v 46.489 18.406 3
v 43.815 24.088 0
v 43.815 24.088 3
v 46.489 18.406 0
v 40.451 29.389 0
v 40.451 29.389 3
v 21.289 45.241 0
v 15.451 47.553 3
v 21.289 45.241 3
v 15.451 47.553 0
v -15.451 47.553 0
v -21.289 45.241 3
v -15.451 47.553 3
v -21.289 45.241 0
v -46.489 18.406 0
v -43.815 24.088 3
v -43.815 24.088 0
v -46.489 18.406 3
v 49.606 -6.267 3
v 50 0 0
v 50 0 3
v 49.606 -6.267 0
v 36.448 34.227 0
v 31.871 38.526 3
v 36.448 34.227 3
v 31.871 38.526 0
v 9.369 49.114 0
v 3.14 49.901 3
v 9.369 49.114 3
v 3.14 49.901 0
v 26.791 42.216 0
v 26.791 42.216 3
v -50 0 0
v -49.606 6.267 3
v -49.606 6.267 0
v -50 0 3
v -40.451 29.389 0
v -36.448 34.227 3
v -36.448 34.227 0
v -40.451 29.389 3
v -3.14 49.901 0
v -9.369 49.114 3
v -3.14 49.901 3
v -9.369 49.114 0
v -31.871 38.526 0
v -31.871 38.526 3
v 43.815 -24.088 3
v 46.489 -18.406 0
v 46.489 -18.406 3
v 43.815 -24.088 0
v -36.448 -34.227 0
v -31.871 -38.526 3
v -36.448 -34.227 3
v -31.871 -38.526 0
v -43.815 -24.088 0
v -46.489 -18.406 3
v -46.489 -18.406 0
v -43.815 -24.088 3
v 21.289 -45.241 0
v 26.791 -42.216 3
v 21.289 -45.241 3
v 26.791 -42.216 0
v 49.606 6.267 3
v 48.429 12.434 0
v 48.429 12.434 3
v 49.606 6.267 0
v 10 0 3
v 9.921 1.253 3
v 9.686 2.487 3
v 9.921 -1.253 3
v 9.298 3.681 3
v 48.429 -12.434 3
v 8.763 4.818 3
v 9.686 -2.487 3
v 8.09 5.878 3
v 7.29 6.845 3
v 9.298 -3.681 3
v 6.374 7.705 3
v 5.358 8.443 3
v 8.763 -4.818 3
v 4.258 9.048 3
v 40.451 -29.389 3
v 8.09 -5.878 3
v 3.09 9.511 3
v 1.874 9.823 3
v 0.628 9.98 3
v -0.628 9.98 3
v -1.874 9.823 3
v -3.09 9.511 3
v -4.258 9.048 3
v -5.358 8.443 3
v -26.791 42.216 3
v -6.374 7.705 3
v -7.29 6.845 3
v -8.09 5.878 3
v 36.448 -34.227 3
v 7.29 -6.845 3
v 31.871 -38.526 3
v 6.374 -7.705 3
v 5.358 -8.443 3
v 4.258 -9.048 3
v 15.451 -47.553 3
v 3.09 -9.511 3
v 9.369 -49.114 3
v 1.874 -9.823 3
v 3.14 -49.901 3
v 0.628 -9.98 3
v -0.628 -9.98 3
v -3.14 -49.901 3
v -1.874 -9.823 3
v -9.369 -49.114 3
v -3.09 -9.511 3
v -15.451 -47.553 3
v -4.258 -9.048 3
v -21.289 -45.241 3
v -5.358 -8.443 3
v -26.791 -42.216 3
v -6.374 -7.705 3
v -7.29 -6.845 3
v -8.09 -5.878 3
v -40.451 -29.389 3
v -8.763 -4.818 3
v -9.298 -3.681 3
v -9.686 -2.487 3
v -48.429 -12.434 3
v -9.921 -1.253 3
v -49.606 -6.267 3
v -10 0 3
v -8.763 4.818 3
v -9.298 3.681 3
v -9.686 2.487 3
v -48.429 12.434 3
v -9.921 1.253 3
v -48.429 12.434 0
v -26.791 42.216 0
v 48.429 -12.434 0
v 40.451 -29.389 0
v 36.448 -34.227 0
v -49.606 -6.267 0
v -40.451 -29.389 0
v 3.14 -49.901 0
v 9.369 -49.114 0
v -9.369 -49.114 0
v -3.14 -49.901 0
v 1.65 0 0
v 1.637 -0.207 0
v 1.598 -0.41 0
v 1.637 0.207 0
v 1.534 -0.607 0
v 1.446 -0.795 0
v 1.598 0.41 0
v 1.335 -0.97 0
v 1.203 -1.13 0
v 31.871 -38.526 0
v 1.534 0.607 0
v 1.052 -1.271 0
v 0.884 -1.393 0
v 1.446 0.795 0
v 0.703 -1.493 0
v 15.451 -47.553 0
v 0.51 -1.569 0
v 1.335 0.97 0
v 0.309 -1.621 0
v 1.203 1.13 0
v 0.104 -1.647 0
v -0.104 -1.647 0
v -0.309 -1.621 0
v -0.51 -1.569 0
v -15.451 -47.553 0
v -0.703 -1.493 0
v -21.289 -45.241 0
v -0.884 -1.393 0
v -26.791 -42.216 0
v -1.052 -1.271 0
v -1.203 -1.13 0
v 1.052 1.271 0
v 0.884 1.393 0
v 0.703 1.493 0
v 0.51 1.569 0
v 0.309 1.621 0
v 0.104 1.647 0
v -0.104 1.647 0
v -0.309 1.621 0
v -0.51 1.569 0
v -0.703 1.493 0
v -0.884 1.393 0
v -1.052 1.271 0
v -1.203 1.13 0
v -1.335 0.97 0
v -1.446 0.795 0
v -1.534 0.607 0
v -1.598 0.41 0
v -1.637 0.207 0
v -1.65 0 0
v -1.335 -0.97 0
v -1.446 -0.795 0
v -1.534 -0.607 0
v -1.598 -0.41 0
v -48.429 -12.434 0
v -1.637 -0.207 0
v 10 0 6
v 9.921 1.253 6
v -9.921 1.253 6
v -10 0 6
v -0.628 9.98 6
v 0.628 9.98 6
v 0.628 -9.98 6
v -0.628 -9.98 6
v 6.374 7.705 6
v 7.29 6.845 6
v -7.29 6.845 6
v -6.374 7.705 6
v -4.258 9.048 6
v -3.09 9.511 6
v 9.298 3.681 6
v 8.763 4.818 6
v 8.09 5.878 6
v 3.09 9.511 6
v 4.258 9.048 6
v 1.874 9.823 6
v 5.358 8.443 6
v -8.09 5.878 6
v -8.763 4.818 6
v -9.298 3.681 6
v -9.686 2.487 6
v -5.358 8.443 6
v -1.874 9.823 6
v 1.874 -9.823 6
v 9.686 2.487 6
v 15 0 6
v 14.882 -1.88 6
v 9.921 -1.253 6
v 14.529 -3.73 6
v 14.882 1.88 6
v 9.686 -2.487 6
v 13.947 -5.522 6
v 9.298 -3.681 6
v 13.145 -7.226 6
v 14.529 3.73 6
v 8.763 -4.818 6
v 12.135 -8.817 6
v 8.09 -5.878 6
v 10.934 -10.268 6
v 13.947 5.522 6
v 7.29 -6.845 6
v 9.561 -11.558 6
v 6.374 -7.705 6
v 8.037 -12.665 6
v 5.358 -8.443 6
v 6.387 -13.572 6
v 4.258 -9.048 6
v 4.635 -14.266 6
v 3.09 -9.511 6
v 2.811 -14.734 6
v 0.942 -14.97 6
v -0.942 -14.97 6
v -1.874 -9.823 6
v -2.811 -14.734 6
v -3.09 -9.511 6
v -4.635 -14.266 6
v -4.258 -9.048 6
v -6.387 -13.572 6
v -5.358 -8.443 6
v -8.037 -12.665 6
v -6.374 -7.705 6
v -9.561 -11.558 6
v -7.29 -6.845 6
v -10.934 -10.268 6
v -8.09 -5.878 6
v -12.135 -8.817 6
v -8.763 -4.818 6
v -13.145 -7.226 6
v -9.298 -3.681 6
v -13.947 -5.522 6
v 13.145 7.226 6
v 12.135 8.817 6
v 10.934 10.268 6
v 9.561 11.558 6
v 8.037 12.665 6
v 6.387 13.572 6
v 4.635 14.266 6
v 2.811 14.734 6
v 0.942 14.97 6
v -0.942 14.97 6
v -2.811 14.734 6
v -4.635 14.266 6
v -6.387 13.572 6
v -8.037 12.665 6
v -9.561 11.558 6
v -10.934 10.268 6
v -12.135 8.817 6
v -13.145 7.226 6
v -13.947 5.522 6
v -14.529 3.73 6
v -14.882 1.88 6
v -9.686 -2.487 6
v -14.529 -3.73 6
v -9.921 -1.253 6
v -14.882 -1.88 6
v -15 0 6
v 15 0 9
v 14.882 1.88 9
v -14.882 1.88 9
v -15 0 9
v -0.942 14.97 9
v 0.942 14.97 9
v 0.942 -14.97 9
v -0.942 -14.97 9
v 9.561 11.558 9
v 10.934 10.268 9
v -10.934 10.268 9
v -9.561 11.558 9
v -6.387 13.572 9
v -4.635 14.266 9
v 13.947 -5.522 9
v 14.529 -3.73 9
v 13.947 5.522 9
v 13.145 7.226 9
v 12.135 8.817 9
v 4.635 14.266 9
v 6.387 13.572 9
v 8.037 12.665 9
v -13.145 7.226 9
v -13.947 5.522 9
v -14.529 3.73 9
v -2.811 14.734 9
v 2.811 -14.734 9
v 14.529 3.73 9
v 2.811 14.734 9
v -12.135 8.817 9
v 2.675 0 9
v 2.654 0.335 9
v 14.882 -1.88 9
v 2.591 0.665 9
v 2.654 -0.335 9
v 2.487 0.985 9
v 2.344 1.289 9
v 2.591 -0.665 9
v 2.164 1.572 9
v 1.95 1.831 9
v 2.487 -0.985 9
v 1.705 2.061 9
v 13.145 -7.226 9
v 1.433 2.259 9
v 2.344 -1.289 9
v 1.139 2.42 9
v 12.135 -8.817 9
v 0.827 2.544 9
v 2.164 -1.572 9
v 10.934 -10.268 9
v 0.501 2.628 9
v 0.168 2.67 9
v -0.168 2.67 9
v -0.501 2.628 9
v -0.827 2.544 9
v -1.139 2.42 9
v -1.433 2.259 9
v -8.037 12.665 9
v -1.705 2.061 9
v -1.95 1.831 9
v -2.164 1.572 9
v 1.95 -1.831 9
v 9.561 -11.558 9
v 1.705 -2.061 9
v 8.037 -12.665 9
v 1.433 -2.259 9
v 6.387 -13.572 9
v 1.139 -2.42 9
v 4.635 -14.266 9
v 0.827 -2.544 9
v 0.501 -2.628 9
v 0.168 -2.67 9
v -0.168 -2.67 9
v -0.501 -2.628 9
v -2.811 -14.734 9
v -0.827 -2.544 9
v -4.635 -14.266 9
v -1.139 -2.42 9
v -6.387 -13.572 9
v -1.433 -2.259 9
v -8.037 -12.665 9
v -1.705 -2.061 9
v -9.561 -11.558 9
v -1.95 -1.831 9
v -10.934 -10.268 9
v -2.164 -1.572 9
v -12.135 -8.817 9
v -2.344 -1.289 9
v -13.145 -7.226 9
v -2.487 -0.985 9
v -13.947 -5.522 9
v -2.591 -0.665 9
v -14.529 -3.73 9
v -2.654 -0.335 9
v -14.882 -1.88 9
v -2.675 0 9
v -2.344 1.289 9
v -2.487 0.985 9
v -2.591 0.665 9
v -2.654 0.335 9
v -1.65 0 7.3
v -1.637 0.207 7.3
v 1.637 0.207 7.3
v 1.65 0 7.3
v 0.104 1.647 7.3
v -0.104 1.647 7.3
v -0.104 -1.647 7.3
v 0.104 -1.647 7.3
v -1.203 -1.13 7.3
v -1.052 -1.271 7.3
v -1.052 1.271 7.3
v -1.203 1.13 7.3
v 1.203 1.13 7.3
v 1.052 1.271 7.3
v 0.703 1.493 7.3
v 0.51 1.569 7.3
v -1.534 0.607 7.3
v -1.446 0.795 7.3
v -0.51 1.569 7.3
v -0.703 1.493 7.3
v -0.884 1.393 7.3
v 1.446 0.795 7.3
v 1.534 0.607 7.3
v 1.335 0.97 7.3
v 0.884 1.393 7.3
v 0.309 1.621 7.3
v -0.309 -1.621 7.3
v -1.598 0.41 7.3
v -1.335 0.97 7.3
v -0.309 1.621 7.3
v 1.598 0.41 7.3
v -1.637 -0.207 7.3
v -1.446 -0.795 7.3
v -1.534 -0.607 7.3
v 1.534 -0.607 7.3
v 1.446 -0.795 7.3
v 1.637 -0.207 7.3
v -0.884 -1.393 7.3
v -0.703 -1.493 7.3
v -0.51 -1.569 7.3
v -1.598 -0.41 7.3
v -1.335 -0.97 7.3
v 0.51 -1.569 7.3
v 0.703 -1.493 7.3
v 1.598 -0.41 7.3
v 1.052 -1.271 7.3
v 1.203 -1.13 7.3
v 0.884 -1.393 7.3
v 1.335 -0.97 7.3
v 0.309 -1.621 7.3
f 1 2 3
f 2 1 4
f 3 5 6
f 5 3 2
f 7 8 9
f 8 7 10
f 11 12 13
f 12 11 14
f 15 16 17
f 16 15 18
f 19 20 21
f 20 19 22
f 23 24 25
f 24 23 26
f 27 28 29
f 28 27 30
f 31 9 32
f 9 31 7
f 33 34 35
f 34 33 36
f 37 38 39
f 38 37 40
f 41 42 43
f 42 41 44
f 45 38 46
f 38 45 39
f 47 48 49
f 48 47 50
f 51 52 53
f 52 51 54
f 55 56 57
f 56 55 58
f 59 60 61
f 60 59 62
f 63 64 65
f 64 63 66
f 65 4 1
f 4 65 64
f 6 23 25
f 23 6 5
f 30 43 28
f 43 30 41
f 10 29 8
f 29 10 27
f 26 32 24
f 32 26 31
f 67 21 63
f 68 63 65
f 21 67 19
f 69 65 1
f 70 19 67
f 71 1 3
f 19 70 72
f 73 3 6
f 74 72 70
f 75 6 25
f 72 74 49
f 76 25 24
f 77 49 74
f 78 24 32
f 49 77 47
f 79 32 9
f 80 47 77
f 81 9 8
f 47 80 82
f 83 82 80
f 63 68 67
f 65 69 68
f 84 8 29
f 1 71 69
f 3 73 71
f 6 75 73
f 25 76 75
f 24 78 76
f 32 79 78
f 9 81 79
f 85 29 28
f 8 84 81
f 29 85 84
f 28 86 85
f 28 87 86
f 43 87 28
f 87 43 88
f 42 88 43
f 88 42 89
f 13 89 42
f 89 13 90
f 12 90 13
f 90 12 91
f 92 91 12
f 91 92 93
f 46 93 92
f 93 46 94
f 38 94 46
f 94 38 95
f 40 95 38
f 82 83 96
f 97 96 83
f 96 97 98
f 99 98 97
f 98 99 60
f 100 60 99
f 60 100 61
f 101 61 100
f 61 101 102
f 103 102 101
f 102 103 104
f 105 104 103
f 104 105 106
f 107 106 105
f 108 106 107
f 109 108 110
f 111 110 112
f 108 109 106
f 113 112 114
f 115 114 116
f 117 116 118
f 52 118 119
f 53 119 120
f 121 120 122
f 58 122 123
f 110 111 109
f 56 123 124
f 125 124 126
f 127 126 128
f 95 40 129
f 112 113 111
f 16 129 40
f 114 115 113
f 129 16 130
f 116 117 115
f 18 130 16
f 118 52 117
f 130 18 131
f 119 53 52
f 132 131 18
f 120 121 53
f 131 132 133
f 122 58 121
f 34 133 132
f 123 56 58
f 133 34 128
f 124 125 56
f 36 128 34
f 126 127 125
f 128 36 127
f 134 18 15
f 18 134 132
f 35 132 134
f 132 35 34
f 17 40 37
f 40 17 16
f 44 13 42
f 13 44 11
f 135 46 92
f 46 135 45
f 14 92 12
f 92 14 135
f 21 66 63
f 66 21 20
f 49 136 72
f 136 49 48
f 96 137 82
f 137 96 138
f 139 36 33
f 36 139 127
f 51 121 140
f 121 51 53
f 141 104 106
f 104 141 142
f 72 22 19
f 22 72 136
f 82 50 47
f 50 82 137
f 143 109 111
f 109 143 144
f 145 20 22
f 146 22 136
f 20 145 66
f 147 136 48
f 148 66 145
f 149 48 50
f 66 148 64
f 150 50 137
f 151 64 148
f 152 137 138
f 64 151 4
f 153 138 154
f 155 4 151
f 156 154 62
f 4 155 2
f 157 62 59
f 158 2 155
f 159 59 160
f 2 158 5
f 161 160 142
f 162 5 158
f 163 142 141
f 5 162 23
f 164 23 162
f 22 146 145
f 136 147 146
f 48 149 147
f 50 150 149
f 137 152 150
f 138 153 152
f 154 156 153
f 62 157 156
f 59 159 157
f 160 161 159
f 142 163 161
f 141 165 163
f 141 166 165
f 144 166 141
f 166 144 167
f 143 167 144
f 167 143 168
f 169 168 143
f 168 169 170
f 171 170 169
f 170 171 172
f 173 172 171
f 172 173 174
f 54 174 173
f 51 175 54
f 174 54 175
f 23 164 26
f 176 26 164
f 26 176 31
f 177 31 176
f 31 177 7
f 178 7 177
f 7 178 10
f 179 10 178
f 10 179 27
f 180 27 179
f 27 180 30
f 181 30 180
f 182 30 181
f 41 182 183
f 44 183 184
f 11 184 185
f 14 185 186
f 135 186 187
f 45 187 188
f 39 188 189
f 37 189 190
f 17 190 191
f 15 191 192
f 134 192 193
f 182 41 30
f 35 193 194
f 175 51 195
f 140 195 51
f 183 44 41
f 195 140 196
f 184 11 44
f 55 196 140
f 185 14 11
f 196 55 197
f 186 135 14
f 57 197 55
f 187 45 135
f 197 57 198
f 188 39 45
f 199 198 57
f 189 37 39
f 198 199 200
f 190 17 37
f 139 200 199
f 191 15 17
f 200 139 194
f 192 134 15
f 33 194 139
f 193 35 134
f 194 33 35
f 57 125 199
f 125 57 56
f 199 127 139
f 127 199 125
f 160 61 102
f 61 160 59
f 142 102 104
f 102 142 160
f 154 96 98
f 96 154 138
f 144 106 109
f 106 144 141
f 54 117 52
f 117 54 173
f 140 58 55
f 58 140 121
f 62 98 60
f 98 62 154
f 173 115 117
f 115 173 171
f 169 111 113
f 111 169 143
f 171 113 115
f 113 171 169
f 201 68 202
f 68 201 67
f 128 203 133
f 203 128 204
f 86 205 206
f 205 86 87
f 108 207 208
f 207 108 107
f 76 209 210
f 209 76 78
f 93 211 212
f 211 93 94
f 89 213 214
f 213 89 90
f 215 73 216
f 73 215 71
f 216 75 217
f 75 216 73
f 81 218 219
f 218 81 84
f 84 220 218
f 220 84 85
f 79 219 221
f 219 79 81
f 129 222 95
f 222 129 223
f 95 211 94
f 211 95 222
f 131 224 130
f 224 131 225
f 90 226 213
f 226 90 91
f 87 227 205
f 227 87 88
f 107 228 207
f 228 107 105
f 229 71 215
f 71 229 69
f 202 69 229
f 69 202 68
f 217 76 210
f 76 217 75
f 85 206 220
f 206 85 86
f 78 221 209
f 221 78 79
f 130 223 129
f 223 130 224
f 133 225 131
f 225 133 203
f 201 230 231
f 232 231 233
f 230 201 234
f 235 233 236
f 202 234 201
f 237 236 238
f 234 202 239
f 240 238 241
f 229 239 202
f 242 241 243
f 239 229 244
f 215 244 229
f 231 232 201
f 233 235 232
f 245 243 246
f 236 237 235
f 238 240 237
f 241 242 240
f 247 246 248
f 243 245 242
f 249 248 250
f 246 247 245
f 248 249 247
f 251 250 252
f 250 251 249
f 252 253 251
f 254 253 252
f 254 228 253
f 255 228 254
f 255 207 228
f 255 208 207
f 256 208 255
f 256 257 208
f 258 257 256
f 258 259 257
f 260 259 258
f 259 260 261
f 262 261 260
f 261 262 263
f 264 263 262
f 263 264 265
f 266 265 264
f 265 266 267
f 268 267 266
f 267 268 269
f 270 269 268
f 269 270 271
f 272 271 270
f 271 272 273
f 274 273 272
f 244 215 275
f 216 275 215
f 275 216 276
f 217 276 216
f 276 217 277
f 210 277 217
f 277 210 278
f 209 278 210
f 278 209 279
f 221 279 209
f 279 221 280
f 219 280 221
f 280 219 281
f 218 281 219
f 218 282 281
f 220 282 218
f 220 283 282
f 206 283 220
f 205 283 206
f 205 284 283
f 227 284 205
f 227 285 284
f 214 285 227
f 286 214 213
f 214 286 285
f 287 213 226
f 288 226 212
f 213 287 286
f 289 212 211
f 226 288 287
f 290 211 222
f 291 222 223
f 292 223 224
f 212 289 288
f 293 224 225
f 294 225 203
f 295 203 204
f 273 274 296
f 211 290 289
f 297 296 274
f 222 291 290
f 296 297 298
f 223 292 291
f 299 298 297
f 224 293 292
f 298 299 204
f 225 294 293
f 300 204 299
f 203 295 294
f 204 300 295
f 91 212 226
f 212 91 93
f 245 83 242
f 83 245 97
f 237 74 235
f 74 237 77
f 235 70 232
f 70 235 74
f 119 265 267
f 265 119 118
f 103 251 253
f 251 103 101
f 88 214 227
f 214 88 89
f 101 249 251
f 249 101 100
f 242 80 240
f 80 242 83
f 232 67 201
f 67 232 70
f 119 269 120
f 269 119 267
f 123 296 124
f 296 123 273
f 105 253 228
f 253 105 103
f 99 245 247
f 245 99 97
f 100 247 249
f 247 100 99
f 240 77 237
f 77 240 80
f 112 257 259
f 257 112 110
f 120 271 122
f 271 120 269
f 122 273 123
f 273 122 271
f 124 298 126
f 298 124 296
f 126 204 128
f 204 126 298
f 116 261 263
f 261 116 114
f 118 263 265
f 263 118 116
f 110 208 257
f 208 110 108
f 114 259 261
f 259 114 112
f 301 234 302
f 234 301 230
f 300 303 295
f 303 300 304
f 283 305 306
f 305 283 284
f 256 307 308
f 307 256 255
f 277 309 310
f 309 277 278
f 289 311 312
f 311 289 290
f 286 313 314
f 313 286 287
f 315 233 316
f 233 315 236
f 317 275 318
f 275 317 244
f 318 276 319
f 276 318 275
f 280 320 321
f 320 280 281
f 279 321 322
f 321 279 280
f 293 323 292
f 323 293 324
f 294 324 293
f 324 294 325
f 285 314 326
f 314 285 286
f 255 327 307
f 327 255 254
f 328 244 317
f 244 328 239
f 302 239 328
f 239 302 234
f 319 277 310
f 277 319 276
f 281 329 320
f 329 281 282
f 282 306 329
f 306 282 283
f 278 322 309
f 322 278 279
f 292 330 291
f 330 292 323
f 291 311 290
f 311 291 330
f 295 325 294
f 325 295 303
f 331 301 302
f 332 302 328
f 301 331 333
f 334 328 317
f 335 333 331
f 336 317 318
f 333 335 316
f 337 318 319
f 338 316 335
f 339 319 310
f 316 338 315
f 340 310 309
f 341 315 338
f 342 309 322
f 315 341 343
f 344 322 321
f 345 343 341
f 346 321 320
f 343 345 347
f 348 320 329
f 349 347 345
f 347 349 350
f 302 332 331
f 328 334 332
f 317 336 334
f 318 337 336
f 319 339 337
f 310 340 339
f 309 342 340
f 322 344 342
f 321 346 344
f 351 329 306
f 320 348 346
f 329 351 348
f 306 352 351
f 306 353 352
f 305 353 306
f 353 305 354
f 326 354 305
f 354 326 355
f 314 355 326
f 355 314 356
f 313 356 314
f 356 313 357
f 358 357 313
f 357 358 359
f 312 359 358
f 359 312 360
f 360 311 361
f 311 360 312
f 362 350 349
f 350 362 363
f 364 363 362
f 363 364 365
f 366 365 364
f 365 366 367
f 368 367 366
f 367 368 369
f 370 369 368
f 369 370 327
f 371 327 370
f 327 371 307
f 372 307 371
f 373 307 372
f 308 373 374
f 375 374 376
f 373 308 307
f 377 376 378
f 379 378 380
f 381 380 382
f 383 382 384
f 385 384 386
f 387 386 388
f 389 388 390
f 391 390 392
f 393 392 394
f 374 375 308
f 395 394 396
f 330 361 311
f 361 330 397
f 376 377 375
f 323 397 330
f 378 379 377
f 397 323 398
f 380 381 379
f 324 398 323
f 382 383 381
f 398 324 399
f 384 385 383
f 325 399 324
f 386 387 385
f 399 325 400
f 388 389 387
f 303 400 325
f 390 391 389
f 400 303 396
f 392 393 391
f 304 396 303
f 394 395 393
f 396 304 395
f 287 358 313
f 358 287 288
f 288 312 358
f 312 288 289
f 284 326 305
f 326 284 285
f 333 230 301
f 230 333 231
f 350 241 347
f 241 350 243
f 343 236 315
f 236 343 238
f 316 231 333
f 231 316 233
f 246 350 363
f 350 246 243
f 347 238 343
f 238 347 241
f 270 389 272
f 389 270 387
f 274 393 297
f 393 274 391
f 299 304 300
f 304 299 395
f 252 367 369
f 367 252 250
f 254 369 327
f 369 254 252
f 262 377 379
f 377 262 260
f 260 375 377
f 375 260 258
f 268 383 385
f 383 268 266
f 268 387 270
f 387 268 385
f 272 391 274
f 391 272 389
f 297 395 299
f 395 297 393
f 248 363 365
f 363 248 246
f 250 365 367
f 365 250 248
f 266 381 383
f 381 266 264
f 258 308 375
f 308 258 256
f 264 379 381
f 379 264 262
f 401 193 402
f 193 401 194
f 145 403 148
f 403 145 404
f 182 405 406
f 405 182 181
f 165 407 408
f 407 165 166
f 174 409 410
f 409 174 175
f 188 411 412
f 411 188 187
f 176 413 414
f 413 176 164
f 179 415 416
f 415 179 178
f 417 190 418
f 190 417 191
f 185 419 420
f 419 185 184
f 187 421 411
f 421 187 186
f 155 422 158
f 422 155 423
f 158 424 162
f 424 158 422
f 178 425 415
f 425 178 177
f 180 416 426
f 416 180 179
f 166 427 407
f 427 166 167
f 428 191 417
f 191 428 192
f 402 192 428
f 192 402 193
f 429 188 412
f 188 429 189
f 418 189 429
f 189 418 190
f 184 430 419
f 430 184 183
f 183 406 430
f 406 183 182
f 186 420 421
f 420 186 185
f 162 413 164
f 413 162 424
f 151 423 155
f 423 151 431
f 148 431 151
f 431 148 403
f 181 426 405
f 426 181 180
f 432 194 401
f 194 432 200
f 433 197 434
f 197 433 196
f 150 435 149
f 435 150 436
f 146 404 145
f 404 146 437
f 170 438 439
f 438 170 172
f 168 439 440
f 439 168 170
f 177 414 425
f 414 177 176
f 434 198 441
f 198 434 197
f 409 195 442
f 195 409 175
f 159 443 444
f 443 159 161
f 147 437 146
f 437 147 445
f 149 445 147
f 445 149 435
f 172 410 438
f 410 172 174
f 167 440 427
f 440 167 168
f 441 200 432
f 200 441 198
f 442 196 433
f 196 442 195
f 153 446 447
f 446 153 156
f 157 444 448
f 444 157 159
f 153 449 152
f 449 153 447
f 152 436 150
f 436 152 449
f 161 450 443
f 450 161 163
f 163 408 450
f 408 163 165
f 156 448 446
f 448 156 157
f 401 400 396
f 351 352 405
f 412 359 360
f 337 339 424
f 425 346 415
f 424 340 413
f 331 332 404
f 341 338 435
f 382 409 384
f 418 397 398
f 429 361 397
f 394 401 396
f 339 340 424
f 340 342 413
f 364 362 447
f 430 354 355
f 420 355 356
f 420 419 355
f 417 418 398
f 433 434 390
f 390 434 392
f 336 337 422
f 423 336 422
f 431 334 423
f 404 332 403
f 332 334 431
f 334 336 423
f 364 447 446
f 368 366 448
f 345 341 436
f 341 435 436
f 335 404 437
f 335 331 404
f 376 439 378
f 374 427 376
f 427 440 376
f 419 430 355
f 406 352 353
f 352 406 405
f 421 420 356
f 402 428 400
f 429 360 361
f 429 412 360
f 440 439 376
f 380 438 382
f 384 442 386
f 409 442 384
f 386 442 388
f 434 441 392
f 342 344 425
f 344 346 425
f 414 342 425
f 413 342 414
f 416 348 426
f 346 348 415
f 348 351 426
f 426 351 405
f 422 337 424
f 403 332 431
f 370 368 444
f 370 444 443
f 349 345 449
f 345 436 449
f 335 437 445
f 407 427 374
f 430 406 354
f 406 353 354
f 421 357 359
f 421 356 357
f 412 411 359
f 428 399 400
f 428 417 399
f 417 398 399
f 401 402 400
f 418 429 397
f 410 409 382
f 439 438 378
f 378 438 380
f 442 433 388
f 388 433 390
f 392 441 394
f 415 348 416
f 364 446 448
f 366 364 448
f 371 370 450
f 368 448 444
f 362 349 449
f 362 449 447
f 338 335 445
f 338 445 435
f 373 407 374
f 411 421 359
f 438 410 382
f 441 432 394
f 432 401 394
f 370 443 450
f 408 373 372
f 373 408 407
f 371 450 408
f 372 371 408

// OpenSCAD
// Generated by SolidPython 1.1.3 on 2023-01-02 19:24:06
$fn = 50;


difference() {
	union() {
		translate(v = [0, 0, 0]) {
			rotate(a = [0, 0, 0]) {
				cylinder(h = 3, r = 50.0000000000);
			}
		}
		translate(v = [0, 0, 3]) {
			rotate(a = [0, 0, 0]) {
				cylinder(h = 3, r = 10.0000000000);
			}
		}
		translate(v = [0, 0, 6]) {
			rotate(a = [0, 0, 0]) {
				cylinder(h = 3, r = 15.0000000000);
			}
		}
	}
	union() {
		translate(v = [0, 0, 9]) {
			rotate(a = [0, 180, 0]) {
				union() {
					translate(v = [0, 0, 0]) {
						rotate(a = [0, 0, 0]) {
							translate(v = [0, 0, -50]) {
								rotate(a = [0, 0, 0]) {
									cylinder(h = 100, r = 1.6500000000);
								}
							}
						}
					}
					translate(v = [0, 0, 0]) {
						rotate(a = [0, 0, 0]) {
							cylinder(h = 1.7000000000, r1 = 2.6750000000, r2 = 2.6750000000);
						}
					}
				}
			}
		}
	}
}
/***********************************************
*********      SolidPython code:      **********
************************************************
 
from solid import *
import os
import subprocess

import oomB

import OPSC_library_gen

mode = "laser"
#mode = "3d_print"

defined_objects = {}

radius_dict = {}
radius_dict['M6'] = 6.5/2
radius_dict['M3'] = 3.3/2

countersunk_dict = {}
countersunk_dict['M3'] = {}
countersunk_dict['M3']['little_rad'] = radius_dict['M3']
countersunk_dict['M3']['big_rad'] = (5.5+0.6)/2
if mode == "laser":
    countersunk_dict['M3']['big_rad'] = (4.75+0.6)/2
    countersunk_dict['M3']['little_rad'] = (4.75+0.6)/2

countersunk_dict['M3']['height'] = 1.7


def opsc_make_object(filename, objects, save_type="none",resolution=50, layers = 1, tilediff = 200):
    sav_type = save_type.lower()
    os.makedirs(os.path.dirname(filename), exist_ok=True)
    final_object = opsc_get_object(objects)
    # Save the final object to the specified filename
    filename_laser = filename.replace(".scad","-laser.scad")
    scad_render_to_file(final_object, filename, file_header='$fn = %s;' % resolution, include_orig_code=True)
    scad_render_to_file(getLaser(final_object, layers=layers, tilediff=tilediff), filename_laser, file_header='$fn = %s;' % resolution, include_orig_code=True)
    if save_type == "all":
        saveToAll(filename_laser)
    elif save_type == "dxf":
        saveToDxf(filename)


def opsc_get_object(objects):
    # Create the solidpython objects
    positive_objects = [get_opsc_item(obj) for obj in objects if obj['type'] == 'positive']
    negative_objects = [get_opsc_item(obj) for obj in objects if obj['type'] == 'negative']
    # Union the positive objects
    positive_object = union()(*positive_objects)
    # Union the negative objects
    negative_object = union()(*negative_objects)
    # Create the final object by subtracting the negative objects from the positive objects
    return difference()(positive_object, negative_object)

def get_opsc_item(params):
    # A dictionary to map radius string values to numerical values
    #radius_dict = {'small': 5, 'medium': 10, 'large': 15}
    # An array of function names for basic shapes
    basic_shapes = ['cube', 'sphere', 'cylinder']
    
    # An array of function names for other shapes
    other_shapes = ['hole', 'slot', 'rounded_rectangle', 'countersunk']
    


    # Convert radius to r if present, and remove radius from the params dictionary
    if 'radius' in params:
        if isinstance(params['radius'], str):
            # Use the radius_dict to map the radius string value to a numerical value
            params['r'] = radius_dict[params['radius']]
        else:
            params['r'] = params['radius']
        del params['radius']
    

    # Check if the object type is a basic shape
    if params['shape'] in basic_shapes:
        # Remove shape and unexpected dictionary values
        allowed_keys = {'size', 'r', 'r1', 'r2', 'd', 'h', 'rw', 'rh', 'dw', 'dh'}
        shape_params = {k: v for k, v in params.items() if k in allowed_keys}

        # Call the corresponding function for the shape parameter, using ** notation to pass the shape_params dictionary as keyword arguments
        return get_opsc_transform(params,globals()[params['shape']](**shape_params))
    
    # If the object type is not a basic shape, check if it's a defined object or one of the other shapes
    elif params['shape'] in other_shapes:
        # Call the corresponding function for the shape parameter, passing the params dictionary as an argument
        p2 = copy.deepcopy(params)
        p2["pos"] = [0,0,0]
        return get_opsc_transform(params,globals()[params['shape']](p2))
    
    # If the object is not a basic shape or a defined object, try to import it from a .scad file
    else:
        obj = defined_objects[params['shape']]
        return get_opsc_transform(params,obj)

def get_opsc_transform(params, solid_obj):
    # Rotate the object based on the 'rot' field in the params dictionary, or the 'rotX', 'rotY', and 'rotZ' fields if 'rot' is not present
    rot = params.get('rot', [])
    if rot:
        rotX, rotY, rotZ = rot
    else:
        rotX = params.get('rotX', 0)
        rotY = params.get('rotY', 0)
        rotZ = params.get('rotZ', 0)
    solid_obj = rotate([rotX, rotY, rotZ])(solid_obj)

    # Translate the object based on the 'pos' field in the params dictionary, or the 'x', 'y', and 'z' fields if 'pos' is not present
    pos = params.get('pos', [])
    if pos:
        x, y, z = pos
    else:
        x = params.get('x', 0)
        y = params.get('y', 0)
        z = params.get('z', 0)
    solid_obj = translate([x, y, z])(solid_obj)
    return solid_obj


import random

def opsc_easy(type, shape, **kwargs):
    obj = {
        'type': type,
        'shape': shape
    }
    for param in ['size', 'r', 'r1', 'r2', 'd', 'h', 'rw', 'rh', 'dw', 'dh', 'pos', 'x', 'y', 'z', 'rot', 'rotX', 'rotY', 'rotZ', "w"]:
        if param in kwargs:
            obj[param] = kwargs[param]
    return obj

def hole(params):
    p2 = copy.deepcopy(params)  
    # Check if the radius is a string and replace it with the corresponding value from the dictionary
    if isinstance(p2['r'], str):
        p2['r'] = radius_dict[p2['r']]
    
    # Set the height to 100 if not specified
    if 'h' not in p2:
        p2['h'] = 100
        p2["pos"] = [0,0,-50]
    p2["center"] = True
    # Create the cylinder object
    p2["shape"] = "cylinder"
    p2["type"] = "positive"

    return get_opsc_item(p2)

import copy

def countersunk(params):
    p2 = copy.deepcopy(params)
    counter_rad = p2['r']
    p2['r'] = radius_dict[p2['r']]
    hp = copy.deepcopy(p2)
    hp["type"] = "positive"
    hp["shape"] = "hole"
    del hp["rot"]
    hol = get_opsc_item(hp)
    
    cp = copy.deepcopy(p2)
    cp["h"] = countersunk_dict[counter_rad]["height"]
    cp["r2"] = countersunk_dict[counter_rad]["little_rad"]
    cp["r1"] = countersunk_dict[counter_rad]["big_rad"]
    del cp["r"]
    del cp["rot"]
    cp["type"] = "positive"
    cp["shape"] = "cylinder"
    cp["pos"] = [0,0,0]

    top = get_opsc_item(cp)
    return union()(hol,top)



def slot(params):  
    p2 = copy.deepcopy(params) 
    if isinstance(p2['r'], str):
        p2['r'] = radius_dict[p2['r']]
    p2["type"] = "positive"
    p2["shape"] = "hole"
    del p2["rot"]
    p2["pos"] = [0,0,0]
    left = copy.deepcopy(p2)
    right = copy.deepcopy(p2)
    left["pos"][0] = p2["w"] / 2 - p2["r"] 
    
    right["pos"][0] = -p2["w"] / 2 + p2["r"] 
    pass
    leftObj = get_opsc_item(left)
    rightObj = get_opsc_item(right)
    return hull()(leftObj, rightObj)

def rounded_rectangle(params):   
    p2 = copy.deepcopy(params) 
    p2["h"] = p2["size"][2]
    p2["pos"] = p2.get("pos", [0, 0, 0]) 
    p2["type"] = "positive"
    p2["shape"] = "hole"
    p2["pos"] = [0,0,0]
    
    if 'rot' in p2:
        del p2["rot"]   
    if 'r' not in p2:
        p2["r"] = 5 
    tl = copy.deepcopy(p2)
    tr = copy.deepcopy(p2)
    bl = copy.deepcopy(p2)
    br = copy.deepcopy(p2)
    tl["pos"][0] = -(p2["size"][0] - p2["r"]*2)/2
    tl["pos"][1] = (p2["size"][1] - p2["r"]*2)/2
    tr["pos"][0] = (p2["size"][0] - p2["r"]*2)/2
    tr["pos"][1] = (p2["size"][1] - p2["r"]*2)/2
    bl["pos"][0] = -(p2["size"][0] - p2["r"]*2)/2
    bl["pos"][1] = -(p2["size"][1] - p2["r"]*2)/2
    br["pos"][0] = (p2["size"][0] - p2["r"]*2)/2
    br["pos"][1] = -(p2["size"][1] - p2["r"]*2)/2
    del tl["size"]
    del tr["size"]
    del bl["size"]
    del br["size"]
    tlo = get_opsc_item(tl)
    tro = get_opsc_item(tr)
    blo = get_opsc_item(bl)
    bro = get_opsc_item(br)    
    return hull()(tlo, tro, blo, bro)



def import_scad_object(filename):
    # Import the .scad file and convert it to a solidpython object
    #filename = "parts"
    obj = import_scad(filename)
    return obj.main()
    


import os
import solid as solidpython

# A dictionary to store the defined objects


def load_scad_objects():
    OPSC_library_gen.gen_library(defined_objects)

import random

def test(num_objects):
    objects = []
    for i in range(num_objects):
        # Choose a random shape
        #shape = random.choice(['cube', 'sphere', 'cylinder', 'hole', 'slot', "rounded_rectangle"])
        shape = random.choice(["rounded_rectangle"])

        # Choose a random type
        type = random.choice(['positive', 'negative'])
        
        # Create an empty object dictionary
        obj = {'shape': shape, 'type': type}
        
        # Set shape-specific parameters
        if obj['shape'] in ['cube']:
            obj['size'] =  [random.uniform(5, 15), random.uniform(5, 15), random.uniform(5, 15)]
        if obj['shape'] in ['rounded_rectangle']:
            obj['size'] =  [random.uniform(5, 15), random.uniform(5, 15), random.uniform(5, 15)]
            obj['r'] = random.uniform(0.5, 5)
        elif obj['shape'] == 'sphere':
            obj['r'] = random.uniform(5, 15)
        elif obj['shape'] in ['cylinder', 'hole']:
            obj['r'] = random.uniform(0.5, 5)
            obj['h'] = random.uniform(5, 15)
        elif obj['shape'] == 'slot':
            obj['r'] = random.uniform(0.5, 5)
            obj['h'] = random.uniform(5, 15)
            obj['w'] = random.uniform(5, 15)
        
        # Set a random position and rotation
        obj['pos'] = [random.uniform(-20, 20), random.uniform(-20, 20), random.uniform(-20, 20)]
        obj['rot'] = [random.uniform(-180, 180), random.uniform(-180, 180), random.uniform(-180, 180)]
        
        # Add the object to the list
        objects.append(obj)
    return objects

####### old file saving
def saveToAll(fileIn):
    saveToDxf(fileIn)
    saveToPng(fileIn)
    saveToStl(fileIn)
    saveToSvg(fileIn)

def saveToDxf(fileIn, fileOut="", copy_to_laser=True):
    if fileOut == "":
        fileOut = fileIn.replace(".scad",".dxf")
    saveToFile(fileIn, fileOut)


    
def saveToPng(fileIn, fileOut="",extra="--render"):
    if fileOut == "":
        fileOut = fileIn.replace(".scad",".png")
    saveToFile(fileIn, fileOut)

def saveToStl(fileIn, fileOut=""):
    if fileOut == "":
        fileOut = fileIn.replace(".scad",".stl")
    saveToFile(fileIn, fileOut)
    
def saveToSvg(fileIn, fileOut=""):
    if fileOut == "":
        fileOut = fileIn.replace(".scad",".svg")
    saveToFile(fileIn, fileOut)

def saveToFile(fileIn, fileOut,extra=""):
    extra = extra + " --colorscheme Tomorrow"

    launchStr = 'openscad -o "' + fileOut + '"' + extra + ' "' + fileIn + '"'
    if ".png" in fileOut:
        launchStr = launchStr + " --render"
    print("            saveToFile launch string: " + launchStr)
    subprocess.run(launchStr)
    x=0

def getLaser(final_object,start=1.5,layers=1,thickness=3,tilediff=200):
        rv= []

        for x in range(layers):
            rv.append(translate([0,x*tilediff,0])(
                    projection()(
                        intersection()(translate([-500,-500,start+x*thickness])(cube(size=[1000,1000,0.1])),
                            final_object
                        )
                    )
            )
            )
            
        return union()(rv)

load_scad_objects() 
 
************************************************/
